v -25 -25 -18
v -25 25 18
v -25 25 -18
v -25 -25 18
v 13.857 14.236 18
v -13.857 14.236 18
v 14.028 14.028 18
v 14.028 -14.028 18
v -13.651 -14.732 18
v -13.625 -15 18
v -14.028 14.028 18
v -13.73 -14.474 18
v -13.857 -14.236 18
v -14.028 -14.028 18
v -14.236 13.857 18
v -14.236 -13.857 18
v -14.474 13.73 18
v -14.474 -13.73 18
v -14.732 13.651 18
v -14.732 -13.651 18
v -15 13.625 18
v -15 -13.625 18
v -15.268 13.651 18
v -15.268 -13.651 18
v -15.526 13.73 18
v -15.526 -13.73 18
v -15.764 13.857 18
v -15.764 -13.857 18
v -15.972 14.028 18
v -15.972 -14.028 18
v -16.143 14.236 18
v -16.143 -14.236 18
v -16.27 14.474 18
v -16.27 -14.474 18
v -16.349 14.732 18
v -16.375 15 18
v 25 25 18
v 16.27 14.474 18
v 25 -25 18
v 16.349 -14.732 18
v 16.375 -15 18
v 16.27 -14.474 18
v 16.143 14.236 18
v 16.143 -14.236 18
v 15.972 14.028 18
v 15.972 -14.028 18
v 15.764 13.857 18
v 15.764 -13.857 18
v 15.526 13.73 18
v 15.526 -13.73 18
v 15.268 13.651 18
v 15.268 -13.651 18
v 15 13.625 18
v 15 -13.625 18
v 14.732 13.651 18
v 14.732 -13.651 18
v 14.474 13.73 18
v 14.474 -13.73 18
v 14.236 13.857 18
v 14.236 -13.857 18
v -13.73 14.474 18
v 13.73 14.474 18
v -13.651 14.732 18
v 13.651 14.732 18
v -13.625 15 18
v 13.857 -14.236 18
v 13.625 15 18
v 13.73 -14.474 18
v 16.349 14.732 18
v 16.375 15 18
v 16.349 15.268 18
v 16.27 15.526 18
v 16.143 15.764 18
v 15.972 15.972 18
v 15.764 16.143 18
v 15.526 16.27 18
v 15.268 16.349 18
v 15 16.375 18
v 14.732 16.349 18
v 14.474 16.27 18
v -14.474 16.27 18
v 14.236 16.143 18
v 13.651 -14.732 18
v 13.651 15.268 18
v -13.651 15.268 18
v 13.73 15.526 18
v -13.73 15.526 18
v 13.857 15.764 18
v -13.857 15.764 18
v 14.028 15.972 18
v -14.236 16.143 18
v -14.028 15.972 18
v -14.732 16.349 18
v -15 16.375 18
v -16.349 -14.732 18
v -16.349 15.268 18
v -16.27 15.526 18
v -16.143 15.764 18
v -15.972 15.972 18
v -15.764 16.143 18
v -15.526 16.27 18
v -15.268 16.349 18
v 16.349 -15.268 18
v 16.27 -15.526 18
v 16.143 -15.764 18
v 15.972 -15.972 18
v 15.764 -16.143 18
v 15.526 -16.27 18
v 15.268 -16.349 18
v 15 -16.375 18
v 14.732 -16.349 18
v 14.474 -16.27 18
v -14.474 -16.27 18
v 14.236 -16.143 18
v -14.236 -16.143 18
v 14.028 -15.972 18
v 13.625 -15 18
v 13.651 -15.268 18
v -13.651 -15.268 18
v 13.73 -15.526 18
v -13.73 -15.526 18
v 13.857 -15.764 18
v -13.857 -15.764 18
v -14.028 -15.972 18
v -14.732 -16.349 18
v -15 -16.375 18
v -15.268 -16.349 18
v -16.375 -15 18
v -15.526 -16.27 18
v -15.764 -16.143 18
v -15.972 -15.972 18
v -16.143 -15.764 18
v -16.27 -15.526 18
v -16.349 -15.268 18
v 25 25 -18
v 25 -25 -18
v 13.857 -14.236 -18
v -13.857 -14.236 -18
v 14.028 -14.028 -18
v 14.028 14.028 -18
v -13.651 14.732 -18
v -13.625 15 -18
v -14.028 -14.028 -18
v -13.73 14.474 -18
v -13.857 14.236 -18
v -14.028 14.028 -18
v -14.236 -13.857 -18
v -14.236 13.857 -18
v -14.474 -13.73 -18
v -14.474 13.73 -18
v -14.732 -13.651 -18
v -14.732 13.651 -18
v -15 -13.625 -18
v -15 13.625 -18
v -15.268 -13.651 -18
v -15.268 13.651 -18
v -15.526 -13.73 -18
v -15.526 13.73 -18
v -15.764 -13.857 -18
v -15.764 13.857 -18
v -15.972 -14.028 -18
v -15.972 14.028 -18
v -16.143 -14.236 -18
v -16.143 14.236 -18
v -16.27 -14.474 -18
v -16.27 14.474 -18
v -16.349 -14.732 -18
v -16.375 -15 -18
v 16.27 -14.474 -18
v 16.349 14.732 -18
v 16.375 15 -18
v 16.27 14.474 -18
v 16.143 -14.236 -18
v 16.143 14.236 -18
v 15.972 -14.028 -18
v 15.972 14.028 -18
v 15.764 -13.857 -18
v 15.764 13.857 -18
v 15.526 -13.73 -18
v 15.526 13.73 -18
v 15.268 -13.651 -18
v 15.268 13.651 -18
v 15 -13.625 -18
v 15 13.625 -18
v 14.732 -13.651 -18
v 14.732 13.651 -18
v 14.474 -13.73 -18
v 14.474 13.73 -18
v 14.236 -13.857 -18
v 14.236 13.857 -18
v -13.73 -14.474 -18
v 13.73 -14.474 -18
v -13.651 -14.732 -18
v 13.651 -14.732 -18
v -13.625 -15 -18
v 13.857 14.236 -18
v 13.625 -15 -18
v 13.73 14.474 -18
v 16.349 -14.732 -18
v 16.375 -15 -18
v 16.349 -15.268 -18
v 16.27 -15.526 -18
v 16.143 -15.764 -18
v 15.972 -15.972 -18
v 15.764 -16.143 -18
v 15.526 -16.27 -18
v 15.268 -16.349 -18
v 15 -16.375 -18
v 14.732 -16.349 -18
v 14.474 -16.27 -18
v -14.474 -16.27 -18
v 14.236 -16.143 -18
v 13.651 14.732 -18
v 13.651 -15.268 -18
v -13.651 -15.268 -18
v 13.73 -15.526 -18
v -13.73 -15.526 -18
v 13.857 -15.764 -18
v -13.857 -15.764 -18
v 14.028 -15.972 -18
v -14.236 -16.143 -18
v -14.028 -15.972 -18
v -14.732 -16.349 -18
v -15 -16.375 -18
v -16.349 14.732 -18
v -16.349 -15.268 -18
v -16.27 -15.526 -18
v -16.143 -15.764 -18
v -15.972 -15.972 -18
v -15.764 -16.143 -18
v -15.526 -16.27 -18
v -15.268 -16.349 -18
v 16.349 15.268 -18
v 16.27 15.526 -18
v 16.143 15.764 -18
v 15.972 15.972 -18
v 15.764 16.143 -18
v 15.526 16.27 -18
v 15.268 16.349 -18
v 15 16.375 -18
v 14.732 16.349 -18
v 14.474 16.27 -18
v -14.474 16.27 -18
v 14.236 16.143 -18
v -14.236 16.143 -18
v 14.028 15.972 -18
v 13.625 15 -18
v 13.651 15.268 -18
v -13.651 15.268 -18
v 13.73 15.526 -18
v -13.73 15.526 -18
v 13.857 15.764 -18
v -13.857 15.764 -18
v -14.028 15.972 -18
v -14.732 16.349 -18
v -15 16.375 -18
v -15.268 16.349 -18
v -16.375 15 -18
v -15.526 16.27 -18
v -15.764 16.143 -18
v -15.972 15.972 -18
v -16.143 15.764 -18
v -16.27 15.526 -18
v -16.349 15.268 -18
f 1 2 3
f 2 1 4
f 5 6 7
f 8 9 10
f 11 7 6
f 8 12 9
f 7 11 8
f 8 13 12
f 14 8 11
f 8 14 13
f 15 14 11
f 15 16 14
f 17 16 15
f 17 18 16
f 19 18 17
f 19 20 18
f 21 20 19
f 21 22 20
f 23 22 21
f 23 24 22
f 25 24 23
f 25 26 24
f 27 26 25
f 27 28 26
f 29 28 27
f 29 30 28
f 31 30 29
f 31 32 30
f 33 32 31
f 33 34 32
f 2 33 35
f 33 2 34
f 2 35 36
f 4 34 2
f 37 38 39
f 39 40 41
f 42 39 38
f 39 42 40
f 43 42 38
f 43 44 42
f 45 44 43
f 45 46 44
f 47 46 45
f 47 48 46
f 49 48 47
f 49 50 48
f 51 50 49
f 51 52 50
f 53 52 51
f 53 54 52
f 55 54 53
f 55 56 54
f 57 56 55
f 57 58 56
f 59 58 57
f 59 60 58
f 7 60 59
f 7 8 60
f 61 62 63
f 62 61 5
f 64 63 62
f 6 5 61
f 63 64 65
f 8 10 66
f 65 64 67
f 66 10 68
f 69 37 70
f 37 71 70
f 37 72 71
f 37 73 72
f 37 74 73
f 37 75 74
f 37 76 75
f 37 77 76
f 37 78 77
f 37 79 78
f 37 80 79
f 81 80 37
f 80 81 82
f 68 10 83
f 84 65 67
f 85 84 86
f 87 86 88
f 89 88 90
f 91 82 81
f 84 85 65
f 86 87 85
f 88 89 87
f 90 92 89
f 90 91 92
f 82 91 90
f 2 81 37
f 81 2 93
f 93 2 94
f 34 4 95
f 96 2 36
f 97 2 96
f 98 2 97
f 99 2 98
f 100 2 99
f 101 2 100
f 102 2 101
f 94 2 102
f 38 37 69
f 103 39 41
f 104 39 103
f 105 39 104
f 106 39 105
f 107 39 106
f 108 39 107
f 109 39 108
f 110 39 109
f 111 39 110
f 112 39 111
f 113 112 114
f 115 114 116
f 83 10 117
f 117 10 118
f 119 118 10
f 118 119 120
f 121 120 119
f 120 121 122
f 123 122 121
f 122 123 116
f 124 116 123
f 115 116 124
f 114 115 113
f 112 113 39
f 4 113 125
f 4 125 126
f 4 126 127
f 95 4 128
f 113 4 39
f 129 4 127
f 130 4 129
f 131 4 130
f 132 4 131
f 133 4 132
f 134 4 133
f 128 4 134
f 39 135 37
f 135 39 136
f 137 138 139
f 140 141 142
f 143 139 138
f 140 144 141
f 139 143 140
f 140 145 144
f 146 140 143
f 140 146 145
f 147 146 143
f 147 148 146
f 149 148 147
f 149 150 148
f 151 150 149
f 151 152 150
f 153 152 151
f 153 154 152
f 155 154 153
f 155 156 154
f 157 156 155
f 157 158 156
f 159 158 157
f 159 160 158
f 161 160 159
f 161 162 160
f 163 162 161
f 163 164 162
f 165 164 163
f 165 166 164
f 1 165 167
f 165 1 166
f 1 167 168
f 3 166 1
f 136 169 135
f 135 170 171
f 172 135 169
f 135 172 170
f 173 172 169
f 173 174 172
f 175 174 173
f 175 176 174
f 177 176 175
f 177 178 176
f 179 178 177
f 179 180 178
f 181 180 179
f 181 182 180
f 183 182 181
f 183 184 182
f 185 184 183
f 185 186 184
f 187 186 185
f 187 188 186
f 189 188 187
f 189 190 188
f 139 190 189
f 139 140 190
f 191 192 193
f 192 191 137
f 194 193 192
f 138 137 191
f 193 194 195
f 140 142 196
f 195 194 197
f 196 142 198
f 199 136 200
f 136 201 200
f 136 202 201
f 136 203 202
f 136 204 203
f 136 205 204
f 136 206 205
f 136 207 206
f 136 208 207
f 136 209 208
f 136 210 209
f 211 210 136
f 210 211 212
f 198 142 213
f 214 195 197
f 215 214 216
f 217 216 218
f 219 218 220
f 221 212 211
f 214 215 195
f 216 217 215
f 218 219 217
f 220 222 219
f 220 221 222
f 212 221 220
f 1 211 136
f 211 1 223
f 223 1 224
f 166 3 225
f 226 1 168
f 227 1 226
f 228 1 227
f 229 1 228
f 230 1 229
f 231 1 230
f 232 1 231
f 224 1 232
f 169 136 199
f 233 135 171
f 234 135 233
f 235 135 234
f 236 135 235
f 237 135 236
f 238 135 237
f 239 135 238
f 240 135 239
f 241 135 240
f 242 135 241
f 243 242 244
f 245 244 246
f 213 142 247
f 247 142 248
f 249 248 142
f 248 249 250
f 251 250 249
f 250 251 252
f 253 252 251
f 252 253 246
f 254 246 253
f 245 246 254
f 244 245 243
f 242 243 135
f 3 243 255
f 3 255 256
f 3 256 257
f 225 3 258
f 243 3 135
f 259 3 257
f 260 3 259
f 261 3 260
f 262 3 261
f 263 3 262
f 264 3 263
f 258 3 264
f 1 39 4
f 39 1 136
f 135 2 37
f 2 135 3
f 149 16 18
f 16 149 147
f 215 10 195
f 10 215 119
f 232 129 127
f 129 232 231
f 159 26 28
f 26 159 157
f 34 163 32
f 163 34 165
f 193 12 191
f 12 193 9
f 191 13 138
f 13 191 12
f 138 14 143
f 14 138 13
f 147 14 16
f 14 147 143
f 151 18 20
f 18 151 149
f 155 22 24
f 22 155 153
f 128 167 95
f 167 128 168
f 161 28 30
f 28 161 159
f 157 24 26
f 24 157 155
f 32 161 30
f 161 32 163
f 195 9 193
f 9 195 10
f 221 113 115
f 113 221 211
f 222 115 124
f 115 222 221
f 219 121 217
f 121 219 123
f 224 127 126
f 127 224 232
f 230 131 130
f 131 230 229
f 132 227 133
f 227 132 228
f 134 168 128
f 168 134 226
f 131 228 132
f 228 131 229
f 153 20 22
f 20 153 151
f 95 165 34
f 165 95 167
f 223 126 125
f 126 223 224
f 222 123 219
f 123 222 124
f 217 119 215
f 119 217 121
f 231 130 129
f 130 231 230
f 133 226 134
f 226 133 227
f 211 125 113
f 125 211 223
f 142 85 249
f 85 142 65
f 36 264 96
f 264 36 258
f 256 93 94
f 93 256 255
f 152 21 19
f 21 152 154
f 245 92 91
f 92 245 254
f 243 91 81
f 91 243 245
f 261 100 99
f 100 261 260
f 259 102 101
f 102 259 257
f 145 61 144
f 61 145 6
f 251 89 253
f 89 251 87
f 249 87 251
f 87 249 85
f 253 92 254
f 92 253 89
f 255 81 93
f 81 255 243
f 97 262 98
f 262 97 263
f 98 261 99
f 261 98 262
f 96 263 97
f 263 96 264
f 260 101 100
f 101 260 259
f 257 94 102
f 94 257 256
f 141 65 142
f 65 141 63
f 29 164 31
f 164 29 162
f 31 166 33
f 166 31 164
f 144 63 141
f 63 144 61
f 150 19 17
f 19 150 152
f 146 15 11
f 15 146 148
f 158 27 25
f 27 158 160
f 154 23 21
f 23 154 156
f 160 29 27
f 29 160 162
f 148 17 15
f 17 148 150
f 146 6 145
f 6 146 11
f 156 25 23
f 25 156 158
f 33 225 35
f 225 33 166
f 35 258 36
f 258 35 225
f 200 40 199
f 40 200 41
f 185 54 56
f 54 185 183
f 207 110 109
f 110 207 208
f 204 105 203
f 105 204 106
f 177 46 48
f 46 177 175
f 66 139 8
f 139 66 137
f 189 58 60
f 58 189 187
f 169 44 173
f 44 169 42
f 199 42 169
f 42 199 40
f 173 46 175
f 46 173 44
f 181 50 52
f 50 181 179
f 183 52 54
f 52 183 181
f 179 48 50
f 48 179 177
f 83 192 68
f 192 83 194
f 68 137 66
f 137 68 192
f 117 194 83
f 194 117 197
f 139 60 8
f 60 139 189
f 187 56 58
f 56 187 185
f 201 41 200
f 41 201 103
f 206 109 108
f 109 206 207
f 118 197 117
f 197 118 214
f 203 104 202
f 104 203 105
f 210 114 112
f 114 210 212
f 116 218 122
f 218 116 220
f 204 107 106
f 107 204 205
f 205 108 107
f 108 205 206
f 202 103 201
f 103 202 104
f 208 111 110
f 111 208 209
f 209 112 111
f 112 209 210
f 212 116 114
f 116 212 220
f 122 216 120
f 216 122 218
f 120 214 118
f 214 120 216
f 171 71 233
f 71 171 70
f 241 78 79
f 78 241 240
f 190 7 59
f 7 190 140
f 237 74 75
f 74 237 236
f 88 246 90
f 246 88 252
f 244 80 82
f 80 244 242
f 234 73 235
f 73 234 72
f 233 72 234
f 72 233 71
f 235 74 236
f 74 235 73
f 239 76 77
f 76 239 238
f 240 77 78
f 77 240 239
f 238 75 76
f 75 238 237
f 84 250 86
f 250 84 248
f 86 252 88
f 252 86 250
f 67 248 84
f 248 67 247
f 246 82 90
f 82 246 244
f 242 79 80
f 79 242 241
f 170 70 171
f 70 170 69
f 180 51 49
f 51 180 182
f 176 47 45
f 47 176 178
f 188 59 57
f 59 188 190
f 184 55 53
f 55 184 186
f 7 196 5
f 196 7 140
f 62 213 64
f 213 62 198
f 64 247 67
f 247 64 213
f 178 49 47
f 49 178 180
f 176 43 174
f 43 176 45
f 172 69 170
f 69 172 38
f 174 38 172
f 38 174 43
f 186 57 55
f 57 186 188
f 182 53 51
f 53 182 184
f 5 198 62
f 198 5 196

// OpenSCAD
difference(){
  cube([50,50,36], center = true);
  
  translate([-15,-15,0])cylinder($fn=32, d=2.75, h= 50, center=true);
  translate([-15,15,0])cylinder($fn=32, d=2.75, h= 50, center=true);
  translate([15,-15,0])cylinder($fn=32, d=2.75, h= 50, center=true);
  translate([15,15,0])cylinder($fn=32, d=2.75, h= 50, center=true);
}
